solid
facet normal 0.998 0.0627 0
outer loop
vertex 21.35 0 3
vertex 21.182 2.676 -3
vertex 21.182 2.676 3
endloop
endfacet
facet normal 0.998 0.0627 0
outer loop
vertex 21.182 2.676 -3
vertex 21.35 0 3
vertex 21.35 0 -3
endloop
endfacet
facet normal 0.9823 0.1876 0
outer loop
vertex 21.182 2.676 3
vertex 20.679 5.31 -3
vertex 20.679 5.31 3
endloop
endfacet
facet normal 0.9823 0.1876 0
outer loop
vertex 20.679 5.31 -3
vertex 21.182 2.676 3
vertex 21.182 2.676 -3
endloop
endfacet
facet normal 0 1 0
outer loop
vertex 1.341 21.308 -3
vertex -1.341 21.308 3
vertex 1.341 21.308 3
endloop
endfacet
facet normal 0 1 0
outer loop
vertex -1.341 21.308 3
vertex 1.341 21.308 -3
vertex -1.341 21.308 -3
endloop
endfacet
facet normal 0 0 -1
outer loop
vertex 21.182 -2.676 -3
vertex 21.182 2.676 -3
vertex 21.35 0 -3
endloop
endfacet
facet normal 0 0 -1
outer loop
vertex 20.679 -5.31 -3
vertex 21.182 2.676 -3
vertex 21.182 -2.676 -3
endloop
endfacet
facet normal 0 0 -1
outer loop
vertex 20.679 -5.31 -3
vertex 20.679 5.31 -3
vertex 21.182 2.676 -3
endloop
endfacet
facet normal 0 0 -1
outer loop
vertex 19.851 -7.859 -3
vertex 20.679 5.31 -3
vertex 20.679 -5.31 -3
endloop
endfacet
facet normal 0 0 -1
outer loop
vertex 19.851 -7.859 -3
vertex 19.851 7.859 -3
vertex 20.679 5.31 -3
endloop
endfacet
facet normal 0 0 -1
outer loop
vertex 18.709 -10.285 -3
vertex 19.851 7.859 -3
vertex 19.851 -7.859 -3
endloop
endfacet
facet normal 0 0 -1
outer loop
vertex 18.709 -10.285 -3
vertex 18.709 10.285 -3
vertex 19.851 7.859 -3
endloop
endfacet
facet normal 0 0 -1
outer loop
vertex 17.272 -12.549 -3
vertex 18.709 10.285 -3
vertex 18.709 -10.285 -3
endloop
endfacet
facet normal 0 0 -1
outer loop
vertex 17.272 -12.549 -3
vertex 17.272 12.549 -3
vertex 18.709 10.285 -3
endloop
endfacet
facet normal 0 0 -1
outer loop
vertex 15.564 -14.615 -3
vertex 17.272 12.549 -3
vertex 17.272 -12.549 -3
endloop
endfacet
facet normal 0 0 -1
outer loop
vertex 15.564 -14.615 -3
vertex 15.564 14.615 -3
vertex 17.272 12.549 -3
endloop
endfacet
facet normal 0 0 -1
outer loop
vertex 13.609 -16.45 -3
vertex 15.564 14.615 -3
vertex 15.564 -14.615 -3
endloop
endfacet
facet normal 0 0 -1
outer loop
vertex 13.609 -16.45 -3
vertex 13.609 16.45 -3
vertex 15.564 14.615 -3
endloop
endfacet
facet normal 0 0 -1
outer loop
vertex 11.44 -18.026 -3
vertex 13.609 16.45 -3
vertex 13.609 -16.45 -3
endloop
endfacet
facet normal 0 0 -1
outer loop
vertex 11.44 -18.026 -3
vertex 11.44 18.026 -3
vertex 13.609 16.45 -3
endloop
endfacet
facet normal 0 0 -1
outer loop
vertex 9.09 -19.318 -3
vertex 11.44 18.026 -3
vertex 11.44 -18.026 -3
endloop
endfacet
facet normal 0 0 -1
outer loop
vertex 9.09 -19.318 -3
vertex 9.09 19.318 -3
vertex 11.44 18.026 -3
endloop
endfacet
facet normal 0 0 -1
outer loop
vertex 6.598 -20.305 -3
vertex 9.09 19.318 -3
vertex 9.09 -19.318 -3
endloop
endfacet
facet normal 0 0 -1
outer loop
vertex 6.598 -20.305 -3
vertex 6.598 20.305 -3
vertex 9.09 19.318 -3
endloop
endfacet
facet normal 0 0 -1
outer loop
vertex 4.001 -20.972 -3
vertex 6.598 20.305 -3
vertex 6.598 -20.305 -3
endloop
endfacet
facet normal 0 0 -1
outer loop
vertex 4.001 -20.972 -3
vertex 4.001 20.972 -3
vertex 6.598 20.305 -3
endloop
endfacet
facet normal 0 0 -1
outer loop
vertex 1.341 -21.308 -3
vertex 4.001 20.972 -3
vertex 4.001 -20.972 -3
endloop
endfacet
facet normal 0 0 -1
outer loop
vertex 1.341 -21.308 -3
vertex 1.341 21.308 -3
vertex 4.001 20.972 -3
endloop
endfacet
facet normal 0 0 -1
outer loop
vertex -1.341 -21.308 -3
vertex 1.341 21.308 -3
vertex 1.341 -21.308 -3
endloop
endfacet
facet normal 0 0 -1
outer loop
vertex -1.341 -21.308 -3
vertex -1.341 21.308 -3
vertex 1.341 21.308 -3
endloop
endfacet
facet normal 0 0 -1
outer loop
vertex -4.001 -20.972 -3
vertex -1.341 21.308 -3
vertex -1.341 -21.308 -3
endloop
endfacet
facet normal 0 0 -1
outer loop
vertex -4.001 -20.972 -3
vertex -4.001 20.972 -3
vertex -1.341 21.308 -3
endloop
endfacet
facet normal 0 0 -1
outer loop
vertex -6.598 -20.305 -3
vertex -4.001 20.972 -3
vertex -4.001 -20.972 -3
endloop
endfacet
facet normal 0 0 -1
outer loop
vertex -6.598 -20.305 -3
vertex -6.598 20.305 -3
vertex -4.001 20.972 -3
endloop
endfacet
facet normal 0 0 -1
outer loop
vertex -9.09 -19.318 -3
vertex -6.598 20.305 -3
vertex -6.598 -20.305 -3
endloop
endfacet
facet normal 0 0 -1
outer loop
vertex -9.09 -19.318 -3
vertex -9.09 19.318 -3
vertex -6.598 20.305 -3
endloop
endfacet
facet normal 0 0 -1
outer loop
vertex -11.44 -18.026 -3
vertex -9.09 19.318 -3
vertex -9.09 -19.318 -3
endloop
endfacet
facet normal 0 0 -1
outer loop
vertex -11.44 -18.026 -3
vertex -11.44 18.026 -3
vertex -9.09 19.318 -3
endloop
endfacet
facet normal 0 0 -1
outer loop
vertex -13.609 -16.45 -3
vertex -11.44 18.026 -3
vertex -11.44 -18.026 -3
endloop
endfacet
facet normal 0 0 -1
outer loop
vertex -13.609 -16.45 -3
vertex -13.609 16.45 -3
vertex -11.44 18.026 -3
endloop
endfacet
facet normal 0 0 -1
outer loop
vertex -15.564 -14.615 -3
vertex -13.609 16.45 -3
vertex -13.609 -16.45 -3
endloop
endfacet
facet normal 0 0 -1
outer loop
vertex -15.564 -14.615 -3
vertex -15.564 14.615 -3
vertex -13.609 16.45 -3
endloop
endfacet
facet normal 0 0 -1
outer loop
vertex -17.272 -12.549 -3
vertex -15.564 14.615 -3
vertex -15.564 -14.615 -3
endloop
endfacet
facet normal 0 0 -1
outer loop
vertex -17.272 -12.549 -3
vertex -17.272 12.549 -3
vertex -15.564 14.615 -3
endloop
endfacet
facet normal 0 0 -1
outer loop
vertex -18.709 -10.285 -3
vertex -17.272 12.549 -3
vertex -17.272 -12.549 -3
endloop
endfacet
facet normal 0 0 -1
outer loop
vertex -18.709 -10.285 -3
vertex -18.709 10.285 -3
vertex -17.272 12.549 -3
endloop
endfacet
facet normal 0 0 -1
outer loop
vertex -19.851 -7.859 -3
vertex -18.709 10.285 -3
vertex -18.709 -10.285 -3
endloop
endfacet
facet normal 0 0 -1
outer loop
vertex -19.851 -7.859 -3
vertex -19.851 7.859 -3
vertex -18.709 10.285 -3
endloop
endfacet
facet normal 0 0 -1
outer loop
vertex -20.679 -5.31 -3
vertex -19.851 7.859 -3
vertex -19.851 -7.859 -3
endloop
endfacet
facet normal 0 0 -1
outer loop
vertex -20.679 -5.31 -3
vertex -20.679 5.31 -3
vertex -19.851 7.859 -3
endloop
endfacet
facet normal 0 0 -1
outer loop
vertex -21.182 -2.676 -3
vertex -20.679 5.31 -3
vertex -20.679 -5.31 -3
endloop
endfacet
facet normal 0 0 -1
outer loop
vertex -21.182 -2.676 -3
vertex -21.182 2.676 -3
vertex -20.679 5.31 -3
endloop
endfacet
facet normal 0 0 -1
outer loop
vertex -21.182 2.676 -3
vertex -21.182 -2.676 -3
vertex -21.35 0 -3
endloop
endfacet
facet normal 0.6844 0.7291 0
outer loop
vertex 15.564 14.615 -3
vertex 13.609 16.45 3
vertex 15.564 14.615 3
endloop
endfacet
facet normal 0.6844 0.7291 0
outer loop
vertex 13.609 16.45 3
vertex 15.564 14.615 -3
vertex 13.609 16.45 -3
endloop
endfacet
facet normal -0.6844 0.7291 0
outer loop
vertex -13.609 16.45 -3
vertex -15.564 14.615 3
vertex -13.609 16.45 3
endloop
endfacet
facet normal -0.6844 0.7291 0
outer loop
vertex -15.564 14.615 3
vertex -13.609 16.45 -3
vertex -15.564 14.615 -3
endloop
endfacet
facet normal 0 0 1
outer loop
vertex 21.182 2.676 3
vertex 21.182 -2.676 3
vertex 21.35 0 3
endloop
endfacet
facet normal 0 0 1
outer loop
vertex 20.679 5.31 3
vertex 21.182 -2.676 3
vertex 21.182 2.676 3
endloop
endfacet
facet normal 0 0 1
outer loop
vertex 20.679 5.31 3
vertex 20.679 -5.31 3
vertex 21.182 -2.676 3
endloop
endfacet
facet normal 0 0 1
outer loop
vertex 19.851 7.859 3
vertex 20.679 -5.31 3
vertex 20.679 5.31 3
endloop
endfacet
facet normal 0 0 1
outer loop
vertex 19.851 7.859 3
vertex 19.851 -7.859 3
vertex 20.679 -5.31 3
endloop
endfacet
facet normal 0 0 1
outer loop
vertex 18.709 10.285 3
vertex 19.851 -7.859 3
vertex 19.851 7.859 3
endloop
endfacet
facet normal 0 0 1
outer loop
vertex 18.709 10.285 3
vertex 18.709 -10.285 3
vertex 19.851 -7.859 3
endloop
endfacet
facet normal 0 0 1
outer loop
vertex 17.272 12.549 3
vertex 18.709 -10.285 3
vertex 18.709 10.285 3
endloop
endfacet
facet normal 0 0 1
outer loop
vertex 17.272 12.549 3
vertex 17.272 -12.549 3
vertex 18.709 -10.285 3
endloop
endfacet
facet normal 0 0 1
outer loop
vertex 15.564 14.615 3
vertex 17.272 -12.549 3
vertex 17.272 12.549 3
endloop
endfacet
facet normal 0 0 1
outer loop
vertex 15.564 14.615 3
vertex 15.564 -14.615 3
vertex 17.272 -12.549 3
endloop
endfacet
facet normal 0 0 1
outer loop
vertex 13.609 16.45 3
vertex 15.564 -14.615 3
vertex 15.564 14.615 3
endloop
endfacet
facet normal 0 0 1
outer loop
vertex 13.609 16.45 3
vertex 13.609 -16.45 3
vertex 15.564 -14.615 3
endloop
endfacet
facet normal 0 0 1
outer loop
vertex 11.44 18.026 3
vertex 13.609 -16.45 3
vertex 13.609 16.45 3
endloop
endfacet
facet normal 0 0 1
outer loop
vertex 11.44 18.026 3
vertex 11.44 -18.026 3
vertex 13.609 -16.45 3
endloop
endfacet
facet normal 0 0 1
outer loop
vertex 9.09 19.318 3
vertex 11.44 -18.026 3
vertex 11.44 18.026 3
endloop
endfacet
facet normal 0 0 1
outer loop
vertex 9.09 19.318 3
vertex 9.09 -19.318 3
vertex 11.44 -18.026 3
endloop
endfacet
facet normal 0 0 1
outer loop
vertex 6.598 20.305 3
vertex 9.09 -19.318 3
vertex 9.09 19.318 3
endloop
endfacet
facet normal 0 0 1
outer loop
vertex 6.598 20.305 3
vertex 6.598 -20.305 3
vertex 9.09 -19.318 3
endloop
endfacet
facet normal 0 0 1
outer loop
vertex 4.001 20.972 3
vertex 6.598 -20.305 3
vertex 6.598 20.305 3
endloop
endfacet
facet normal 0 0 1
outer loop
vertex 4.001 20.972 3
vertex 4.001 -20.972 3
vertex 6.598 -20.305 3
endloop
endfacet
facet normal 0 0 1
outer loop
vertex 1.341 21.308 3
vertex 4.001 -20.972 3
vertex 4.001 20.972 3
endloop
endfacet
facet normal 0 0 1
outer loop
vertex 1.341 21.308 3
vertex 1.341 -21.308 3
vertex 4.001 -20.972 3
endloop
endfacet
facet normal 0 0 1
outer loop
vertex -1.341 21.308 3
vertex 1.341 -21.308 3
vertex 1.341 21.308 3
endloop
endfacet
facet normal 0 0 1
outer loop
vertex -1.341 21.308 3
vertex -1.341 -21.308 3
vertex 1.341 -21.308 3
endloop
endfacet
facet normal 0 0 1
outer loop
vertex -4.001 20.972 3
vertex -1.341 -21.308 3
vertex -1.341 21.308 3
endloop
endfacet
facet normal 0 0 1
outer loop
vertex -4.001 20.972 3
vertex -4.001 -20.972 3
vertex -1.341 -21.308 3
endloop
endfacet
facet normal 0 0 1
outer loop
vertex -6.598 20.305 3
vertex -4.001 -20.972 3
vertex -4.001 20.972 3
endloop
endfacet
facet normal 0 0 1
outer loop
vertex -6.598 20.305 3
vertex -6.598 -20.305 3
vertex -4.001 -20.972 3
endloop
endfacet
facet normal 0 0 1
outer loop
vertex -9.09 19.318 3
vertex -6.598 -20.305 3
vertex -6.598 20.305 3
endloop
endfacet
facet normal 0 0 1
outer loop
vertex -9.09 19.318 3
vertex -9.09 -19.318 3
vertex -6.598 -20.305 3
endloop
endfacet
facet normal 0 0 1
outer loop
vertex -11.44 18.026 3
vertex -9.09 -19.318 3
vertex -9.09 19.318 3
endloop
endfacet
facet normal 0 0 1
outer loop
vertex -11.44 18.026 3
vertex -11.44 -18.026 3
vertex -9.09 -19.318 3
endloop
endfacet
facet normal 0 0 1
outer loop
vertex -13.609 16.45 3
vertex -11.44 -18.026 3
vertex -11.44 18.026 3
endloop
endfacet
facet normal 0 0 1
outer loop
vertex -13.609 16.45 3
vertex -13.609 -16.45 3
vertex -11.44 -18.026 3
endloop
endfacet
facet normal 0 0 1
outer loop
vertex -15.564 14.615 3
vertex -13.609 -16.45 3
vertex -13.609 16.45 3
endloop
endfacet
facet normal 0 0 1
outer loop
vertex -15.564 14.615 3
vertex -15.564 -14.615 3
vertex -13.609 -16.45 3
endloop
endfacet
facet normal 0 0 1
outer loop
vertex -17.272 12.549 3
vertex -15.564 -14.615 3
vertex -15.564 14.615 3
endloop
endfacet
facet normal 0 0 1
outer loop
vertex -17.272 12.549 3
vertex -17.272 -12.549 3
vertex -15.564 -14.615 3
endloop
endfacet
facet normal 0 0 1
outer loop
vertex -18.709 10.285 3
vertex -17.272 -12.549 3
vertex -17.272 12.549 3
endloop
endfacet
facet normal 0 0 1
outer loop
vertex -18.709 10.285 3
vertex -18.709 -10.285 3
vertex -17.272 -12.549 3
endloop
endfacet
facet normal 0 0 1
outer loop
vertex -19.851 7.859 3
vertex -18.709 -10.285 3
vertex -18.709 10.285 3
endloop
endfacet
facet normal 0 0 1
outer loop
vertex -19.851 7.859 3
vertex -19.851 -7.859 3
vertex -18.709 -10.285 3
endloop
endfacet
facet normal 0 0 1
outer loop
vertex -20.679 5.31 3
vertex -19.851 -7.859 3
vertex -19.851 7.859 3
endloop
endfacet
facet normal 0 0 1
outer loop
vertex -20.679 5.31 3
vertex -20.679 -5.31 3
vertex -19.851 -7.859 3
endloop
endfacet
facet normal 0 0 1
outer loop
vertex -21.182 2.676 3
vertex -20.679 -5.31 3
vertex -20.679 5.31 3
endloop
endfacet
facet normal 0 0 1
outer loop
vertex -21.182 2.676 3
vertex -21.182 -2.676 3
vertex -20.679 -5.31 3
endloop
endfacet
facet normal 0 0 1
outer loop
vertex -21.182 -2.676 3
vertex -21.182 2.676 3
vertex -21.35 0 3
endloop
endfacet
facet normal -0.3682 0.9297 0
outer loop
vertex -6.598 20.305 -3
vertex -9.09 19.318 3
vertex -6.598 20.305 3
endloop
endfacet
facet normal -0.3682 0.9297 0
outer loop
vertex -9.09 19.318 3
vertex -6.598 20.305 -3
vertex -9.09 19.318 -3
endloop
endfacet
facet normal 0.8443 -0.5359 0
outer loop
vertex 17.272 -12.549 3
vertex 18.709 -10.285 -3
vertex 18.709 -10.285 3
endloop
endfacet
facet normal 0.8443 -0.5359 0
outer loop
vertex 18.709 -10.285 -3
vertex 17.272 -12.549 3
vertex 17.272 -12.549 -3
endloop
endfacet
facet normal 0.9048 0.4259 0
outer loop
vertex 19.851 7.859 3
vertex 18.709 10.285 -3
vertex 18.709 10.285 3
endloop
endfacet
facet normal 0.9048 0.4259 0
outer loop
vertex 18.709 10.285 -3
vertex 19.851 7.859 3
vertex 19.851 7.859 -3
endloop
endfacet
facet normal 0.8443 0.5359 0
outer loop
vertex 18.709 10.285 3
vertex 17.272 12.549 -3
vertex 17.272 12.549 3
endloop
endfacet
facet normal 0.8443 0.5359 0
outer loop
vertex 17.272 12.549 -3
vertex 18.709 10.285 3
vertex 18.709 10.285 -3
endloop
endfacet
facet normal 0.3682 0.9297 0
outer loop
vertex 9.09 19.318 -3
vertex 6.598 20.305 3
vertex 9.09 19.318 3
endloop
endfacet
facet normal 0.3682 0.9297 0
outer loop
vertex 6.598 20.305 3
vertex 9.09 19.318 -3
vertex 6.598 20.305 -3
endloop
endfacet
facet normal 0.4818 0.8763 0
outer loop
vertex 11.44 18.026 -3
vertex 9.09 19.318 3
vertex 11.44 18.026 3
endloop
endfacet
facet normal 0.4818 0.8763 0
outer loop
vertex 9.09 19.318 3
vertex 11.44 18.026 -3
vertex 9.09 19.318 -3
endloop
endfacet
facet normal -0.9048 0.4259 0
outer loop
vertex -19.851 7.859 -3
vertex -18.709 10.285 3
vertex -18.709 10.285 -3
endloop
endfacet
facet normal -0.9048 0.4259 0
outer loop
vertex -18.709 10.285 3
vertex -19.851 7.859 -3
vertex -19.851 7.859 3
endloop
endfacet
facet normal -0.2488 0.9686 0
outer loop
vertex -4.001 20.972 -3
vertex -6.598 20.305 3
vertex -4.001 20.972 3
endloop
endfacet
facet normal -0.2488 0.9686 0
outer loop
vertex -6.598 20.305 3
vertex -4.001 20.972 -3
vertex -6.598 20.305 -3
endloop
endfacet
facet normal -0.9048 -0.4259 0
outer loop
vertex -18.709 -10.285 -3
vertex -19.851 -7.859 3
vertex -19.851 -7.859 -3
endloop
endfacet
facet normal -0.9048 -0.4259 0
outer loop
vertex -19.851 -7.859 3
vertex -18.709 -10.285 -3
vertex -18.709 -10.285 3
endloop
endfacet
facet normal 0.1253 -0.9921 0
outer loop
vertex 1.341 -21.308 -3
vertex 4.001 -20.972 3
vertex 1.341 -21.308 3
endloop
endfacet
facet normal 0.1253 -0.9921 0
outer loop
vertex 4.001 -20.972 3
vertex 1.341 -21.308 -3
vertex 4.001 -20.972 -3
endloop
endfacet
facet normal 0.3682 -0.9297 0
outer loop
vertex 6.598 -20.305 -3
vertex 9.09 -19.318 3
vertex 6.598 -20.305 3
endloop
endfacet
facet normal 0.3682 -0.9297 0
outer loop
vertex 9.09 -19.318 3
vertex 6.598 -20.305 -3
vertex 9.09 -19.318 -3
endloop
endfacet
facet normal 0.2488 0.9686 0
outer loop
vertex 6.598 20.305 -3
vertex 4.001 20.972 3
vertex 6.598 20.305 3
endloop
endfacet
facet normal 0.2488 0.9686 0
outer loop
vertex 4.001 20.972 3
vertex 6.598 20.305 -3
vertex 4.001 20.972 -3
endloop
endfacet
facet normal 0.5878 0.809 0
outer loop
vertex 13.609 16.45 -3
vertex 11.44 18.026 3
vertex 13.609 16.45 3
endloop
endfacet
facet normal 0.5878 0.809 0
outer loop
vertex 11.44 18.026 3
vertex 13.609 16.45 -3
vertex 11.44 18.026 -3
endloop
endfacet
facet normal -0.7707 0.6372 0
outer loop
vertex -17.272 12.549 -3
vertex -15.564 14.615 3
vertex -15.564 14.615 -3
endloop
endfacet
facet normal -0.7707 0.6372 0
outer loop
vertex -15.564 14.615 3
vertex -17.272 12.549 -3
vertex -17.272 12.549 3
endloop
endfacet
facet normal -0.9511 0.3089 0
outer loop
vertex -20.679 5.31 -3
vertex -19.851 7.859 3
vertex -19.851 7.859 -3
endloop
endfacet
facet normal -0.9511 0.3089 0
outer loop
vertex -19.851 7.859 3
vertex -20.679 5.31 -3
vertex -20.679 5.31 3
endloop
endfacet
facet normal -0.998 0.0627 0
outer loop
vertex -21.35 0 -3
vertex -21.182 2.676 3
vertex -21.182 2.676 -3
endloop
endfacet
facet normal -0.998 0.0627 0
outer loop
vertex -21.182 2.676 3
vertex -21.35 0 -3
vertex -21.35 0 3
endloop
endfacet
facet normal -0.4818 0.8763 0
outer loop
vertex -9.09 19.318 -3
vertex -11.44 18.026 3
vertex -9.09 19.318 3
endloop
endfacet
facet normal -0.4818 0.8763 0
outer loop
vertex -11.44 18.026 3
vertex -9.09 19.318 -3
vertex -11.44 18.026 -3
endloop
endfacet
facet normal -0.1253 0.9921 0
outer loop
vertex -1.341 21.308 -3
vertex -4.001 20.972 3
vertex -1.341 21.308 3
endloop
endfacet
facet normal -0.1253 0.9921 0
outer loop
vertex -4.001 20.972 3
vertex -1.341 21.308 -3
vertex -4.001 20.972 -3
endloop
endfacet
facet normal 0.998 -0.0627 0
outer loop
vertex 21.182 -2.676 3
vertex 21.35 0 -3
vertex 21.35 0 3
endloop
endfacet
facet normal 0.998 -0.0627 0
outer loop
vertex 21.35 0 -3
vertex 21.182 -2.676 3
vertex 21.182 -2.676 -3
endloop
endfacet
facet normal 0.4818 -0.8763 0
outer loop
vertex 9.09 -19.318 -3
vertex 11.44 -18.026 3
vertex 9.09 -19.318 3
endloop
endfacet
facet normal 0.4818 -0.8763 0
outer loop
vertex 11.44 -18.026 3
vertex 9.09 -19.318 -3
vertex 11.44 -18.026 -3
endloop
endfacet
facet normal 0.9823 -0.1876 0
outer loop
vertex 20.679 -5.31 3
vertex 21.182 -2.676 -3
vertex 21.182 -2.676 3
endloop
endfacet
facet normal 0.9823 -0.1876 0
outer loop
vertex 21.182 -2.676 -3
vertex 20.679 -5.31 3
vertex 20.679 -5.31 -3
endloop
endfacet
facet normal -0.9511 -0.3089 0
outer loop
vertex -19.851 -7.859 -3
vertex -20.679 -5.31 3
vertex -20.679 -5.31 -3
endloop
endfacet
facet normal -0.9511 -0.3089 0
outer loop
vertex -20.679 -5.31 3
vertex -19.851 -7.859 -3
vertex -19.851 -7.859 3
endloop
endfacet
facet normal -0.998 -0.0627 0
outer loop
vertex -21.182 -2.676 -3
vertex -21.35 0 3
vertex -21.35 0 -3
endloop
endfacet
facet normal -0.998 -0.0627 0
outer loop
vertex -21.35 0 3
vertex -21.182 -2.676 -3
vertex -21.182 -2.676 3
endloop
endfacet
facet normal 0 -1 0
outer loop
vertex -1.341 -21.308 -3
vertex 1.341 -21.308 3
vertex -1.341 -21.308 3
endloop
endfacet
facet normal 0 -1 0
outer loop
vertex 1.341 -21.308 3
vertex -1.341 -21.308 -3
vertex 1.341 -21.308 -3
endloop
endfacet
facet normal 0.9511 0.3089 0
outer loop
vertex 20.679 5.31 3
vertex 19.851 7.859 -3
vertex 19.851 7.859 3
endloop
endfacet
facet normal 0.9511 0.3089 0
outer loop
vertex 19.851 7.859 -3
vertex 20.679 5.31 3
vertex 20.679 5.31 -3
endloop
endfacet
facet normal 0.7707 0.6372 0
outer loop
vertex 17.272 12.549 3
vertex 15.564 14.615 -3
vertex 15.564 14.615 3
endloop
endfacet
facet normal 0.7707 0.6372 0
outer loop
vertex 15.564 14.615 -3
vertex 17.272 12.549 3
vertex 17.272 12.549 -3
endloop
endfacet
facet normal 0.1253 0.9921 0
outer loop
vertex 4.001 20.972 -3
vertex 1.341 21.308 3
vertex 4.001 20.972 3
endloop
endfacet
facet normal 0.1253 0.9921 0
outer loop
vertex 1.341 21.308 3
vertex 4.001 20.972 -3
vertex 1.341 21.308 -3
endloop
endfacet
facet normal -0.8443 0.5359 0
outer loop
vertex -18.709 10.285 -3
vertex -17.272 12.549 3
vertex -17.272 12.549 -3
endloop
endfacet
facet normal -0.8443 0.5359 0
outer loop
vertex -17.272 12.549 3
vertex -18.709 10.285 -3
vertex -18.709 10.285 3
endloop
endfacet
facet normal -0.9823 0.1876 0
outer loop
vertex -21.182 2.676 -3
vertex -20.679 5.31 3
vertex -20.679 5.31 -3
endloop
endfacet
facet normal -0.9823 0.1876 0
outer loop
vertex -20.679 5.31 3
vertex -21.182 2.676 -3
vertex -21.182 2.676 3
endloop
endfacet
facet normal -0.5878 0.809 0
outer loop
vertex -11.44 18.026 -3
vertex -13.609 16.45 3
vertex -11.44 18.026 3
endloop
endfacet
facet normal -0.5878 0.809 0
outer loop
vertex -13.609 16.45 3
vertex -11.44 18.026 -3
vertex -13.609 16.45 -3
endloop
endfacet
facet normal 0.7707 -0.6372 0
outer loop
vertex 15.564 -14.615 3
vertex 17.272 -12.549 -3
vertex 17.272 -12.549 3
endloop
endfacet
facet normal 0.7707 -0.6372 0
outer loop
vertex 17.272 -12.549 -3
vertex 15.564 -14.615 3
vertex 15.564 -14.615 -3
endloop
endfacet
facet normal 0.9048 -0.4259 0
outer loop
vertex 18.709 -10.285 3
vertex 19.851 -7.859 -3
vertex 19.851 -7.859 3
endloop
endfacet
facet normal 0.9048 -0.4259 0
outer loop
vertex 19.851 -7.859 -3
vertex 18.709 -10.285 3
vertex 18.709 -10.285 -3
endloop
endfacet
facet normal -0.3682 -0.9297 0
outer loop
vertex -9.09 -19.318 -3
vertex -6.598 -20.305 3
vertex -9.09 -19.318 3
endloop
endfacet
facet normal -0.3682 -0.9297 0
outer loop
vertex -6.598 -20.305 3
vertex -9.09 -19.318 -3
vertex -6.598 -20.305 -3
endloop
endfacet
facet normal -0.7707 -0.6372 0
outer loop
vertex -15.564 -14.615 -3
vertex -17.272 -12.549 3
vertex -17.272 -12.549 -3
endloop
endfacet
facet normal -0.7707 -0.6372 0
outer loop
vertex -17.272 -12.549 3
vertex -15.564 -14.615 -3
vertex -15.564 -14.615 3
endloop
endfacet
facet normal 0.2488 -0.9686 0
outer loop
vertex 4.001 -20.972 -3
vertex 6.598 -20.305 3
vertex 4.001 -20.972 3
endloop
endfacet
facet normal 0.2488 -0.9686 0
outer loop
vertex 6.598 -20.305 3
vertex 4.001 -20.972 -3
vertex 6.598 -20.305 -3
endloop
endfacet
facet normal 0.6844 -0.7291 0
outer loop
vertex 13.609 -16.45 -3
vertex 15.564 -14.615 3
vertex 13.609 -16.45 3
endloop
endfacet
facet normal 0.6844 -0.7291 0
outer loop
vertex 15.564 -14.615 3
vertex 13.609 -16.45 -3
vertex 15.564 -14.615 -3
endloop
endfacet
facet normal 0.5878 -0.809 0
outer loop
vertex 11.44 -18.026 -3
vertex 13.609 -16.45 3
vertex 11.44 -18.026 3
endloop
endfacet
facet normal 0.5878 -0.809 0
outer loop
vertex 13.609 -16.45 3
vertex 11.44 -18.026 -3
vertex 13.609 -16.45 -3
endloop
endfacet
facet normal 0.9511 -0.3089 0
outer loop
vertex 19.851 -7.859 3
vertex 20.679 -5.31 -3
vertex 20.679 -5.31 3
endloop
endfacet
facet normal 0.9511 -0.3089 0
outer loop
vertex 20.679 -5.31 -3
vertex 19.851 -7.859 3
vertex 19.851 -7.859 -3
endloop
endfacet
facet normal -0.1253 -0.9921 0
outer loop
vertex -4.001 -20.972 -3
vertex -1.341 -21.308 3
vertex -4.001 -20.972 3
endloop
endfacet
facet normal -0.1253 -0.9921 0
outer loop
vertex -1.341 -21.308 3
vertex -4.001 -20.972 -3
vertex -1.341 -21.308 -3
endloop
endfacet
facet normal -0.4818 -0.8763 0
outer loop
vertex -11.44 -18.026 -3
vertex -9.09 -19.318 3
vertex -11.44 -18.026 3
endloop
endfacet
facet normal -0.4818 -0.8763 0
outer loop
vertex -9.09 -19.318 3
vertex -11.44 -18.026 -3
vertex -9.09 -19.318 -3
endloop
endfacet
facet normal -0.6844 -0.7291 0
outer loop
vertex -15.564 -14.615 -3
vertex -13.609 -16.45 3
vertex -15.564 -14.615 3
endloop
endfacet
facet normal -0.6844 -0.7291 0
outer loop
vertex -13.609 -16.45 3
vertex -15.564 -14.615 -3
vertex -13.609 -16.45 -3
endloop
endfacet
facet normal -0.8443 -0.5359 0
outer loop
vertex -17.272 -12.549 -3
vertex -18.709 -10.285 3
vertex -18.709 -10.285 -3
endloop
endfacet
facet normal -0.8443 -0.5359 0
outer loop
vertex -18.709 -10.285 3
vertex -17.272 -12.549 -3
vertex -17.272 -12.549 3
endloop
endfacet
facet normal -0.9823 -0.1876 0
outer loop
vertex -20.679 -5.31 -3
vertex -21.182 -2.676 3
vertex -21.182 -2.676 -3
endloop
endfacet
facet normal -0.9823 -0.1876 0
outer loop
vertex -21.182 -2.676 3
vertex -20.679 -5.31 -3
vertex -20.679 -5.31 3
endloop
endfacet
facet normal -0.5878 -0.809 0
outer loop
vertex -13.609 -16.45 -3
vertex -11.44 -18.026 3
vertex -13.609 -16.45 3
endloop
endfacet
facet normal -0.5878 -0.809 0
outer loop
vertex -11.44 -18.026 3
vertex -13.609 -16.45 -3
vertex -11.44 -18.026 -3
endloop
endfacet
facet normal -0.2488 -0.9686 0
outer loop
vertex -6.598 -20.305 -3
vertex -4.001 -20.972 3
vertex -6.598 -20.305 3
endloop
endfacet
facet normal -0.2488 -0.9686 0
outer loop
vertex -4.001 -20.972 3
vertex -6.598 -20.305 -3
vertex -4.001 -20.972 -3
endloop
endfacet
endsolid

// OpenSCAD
$fn = 50;


difference() {
	union() {
		translate(v = [0, 0, -3.0000000000]) {
			cylinder(h = 6, r = 21.3500000000);
		}
	}
	union() {
		translate(v = [0, 0, -100.0000000000]) {
			cylinder(h = 200, r = 0);
		}
	}
}
